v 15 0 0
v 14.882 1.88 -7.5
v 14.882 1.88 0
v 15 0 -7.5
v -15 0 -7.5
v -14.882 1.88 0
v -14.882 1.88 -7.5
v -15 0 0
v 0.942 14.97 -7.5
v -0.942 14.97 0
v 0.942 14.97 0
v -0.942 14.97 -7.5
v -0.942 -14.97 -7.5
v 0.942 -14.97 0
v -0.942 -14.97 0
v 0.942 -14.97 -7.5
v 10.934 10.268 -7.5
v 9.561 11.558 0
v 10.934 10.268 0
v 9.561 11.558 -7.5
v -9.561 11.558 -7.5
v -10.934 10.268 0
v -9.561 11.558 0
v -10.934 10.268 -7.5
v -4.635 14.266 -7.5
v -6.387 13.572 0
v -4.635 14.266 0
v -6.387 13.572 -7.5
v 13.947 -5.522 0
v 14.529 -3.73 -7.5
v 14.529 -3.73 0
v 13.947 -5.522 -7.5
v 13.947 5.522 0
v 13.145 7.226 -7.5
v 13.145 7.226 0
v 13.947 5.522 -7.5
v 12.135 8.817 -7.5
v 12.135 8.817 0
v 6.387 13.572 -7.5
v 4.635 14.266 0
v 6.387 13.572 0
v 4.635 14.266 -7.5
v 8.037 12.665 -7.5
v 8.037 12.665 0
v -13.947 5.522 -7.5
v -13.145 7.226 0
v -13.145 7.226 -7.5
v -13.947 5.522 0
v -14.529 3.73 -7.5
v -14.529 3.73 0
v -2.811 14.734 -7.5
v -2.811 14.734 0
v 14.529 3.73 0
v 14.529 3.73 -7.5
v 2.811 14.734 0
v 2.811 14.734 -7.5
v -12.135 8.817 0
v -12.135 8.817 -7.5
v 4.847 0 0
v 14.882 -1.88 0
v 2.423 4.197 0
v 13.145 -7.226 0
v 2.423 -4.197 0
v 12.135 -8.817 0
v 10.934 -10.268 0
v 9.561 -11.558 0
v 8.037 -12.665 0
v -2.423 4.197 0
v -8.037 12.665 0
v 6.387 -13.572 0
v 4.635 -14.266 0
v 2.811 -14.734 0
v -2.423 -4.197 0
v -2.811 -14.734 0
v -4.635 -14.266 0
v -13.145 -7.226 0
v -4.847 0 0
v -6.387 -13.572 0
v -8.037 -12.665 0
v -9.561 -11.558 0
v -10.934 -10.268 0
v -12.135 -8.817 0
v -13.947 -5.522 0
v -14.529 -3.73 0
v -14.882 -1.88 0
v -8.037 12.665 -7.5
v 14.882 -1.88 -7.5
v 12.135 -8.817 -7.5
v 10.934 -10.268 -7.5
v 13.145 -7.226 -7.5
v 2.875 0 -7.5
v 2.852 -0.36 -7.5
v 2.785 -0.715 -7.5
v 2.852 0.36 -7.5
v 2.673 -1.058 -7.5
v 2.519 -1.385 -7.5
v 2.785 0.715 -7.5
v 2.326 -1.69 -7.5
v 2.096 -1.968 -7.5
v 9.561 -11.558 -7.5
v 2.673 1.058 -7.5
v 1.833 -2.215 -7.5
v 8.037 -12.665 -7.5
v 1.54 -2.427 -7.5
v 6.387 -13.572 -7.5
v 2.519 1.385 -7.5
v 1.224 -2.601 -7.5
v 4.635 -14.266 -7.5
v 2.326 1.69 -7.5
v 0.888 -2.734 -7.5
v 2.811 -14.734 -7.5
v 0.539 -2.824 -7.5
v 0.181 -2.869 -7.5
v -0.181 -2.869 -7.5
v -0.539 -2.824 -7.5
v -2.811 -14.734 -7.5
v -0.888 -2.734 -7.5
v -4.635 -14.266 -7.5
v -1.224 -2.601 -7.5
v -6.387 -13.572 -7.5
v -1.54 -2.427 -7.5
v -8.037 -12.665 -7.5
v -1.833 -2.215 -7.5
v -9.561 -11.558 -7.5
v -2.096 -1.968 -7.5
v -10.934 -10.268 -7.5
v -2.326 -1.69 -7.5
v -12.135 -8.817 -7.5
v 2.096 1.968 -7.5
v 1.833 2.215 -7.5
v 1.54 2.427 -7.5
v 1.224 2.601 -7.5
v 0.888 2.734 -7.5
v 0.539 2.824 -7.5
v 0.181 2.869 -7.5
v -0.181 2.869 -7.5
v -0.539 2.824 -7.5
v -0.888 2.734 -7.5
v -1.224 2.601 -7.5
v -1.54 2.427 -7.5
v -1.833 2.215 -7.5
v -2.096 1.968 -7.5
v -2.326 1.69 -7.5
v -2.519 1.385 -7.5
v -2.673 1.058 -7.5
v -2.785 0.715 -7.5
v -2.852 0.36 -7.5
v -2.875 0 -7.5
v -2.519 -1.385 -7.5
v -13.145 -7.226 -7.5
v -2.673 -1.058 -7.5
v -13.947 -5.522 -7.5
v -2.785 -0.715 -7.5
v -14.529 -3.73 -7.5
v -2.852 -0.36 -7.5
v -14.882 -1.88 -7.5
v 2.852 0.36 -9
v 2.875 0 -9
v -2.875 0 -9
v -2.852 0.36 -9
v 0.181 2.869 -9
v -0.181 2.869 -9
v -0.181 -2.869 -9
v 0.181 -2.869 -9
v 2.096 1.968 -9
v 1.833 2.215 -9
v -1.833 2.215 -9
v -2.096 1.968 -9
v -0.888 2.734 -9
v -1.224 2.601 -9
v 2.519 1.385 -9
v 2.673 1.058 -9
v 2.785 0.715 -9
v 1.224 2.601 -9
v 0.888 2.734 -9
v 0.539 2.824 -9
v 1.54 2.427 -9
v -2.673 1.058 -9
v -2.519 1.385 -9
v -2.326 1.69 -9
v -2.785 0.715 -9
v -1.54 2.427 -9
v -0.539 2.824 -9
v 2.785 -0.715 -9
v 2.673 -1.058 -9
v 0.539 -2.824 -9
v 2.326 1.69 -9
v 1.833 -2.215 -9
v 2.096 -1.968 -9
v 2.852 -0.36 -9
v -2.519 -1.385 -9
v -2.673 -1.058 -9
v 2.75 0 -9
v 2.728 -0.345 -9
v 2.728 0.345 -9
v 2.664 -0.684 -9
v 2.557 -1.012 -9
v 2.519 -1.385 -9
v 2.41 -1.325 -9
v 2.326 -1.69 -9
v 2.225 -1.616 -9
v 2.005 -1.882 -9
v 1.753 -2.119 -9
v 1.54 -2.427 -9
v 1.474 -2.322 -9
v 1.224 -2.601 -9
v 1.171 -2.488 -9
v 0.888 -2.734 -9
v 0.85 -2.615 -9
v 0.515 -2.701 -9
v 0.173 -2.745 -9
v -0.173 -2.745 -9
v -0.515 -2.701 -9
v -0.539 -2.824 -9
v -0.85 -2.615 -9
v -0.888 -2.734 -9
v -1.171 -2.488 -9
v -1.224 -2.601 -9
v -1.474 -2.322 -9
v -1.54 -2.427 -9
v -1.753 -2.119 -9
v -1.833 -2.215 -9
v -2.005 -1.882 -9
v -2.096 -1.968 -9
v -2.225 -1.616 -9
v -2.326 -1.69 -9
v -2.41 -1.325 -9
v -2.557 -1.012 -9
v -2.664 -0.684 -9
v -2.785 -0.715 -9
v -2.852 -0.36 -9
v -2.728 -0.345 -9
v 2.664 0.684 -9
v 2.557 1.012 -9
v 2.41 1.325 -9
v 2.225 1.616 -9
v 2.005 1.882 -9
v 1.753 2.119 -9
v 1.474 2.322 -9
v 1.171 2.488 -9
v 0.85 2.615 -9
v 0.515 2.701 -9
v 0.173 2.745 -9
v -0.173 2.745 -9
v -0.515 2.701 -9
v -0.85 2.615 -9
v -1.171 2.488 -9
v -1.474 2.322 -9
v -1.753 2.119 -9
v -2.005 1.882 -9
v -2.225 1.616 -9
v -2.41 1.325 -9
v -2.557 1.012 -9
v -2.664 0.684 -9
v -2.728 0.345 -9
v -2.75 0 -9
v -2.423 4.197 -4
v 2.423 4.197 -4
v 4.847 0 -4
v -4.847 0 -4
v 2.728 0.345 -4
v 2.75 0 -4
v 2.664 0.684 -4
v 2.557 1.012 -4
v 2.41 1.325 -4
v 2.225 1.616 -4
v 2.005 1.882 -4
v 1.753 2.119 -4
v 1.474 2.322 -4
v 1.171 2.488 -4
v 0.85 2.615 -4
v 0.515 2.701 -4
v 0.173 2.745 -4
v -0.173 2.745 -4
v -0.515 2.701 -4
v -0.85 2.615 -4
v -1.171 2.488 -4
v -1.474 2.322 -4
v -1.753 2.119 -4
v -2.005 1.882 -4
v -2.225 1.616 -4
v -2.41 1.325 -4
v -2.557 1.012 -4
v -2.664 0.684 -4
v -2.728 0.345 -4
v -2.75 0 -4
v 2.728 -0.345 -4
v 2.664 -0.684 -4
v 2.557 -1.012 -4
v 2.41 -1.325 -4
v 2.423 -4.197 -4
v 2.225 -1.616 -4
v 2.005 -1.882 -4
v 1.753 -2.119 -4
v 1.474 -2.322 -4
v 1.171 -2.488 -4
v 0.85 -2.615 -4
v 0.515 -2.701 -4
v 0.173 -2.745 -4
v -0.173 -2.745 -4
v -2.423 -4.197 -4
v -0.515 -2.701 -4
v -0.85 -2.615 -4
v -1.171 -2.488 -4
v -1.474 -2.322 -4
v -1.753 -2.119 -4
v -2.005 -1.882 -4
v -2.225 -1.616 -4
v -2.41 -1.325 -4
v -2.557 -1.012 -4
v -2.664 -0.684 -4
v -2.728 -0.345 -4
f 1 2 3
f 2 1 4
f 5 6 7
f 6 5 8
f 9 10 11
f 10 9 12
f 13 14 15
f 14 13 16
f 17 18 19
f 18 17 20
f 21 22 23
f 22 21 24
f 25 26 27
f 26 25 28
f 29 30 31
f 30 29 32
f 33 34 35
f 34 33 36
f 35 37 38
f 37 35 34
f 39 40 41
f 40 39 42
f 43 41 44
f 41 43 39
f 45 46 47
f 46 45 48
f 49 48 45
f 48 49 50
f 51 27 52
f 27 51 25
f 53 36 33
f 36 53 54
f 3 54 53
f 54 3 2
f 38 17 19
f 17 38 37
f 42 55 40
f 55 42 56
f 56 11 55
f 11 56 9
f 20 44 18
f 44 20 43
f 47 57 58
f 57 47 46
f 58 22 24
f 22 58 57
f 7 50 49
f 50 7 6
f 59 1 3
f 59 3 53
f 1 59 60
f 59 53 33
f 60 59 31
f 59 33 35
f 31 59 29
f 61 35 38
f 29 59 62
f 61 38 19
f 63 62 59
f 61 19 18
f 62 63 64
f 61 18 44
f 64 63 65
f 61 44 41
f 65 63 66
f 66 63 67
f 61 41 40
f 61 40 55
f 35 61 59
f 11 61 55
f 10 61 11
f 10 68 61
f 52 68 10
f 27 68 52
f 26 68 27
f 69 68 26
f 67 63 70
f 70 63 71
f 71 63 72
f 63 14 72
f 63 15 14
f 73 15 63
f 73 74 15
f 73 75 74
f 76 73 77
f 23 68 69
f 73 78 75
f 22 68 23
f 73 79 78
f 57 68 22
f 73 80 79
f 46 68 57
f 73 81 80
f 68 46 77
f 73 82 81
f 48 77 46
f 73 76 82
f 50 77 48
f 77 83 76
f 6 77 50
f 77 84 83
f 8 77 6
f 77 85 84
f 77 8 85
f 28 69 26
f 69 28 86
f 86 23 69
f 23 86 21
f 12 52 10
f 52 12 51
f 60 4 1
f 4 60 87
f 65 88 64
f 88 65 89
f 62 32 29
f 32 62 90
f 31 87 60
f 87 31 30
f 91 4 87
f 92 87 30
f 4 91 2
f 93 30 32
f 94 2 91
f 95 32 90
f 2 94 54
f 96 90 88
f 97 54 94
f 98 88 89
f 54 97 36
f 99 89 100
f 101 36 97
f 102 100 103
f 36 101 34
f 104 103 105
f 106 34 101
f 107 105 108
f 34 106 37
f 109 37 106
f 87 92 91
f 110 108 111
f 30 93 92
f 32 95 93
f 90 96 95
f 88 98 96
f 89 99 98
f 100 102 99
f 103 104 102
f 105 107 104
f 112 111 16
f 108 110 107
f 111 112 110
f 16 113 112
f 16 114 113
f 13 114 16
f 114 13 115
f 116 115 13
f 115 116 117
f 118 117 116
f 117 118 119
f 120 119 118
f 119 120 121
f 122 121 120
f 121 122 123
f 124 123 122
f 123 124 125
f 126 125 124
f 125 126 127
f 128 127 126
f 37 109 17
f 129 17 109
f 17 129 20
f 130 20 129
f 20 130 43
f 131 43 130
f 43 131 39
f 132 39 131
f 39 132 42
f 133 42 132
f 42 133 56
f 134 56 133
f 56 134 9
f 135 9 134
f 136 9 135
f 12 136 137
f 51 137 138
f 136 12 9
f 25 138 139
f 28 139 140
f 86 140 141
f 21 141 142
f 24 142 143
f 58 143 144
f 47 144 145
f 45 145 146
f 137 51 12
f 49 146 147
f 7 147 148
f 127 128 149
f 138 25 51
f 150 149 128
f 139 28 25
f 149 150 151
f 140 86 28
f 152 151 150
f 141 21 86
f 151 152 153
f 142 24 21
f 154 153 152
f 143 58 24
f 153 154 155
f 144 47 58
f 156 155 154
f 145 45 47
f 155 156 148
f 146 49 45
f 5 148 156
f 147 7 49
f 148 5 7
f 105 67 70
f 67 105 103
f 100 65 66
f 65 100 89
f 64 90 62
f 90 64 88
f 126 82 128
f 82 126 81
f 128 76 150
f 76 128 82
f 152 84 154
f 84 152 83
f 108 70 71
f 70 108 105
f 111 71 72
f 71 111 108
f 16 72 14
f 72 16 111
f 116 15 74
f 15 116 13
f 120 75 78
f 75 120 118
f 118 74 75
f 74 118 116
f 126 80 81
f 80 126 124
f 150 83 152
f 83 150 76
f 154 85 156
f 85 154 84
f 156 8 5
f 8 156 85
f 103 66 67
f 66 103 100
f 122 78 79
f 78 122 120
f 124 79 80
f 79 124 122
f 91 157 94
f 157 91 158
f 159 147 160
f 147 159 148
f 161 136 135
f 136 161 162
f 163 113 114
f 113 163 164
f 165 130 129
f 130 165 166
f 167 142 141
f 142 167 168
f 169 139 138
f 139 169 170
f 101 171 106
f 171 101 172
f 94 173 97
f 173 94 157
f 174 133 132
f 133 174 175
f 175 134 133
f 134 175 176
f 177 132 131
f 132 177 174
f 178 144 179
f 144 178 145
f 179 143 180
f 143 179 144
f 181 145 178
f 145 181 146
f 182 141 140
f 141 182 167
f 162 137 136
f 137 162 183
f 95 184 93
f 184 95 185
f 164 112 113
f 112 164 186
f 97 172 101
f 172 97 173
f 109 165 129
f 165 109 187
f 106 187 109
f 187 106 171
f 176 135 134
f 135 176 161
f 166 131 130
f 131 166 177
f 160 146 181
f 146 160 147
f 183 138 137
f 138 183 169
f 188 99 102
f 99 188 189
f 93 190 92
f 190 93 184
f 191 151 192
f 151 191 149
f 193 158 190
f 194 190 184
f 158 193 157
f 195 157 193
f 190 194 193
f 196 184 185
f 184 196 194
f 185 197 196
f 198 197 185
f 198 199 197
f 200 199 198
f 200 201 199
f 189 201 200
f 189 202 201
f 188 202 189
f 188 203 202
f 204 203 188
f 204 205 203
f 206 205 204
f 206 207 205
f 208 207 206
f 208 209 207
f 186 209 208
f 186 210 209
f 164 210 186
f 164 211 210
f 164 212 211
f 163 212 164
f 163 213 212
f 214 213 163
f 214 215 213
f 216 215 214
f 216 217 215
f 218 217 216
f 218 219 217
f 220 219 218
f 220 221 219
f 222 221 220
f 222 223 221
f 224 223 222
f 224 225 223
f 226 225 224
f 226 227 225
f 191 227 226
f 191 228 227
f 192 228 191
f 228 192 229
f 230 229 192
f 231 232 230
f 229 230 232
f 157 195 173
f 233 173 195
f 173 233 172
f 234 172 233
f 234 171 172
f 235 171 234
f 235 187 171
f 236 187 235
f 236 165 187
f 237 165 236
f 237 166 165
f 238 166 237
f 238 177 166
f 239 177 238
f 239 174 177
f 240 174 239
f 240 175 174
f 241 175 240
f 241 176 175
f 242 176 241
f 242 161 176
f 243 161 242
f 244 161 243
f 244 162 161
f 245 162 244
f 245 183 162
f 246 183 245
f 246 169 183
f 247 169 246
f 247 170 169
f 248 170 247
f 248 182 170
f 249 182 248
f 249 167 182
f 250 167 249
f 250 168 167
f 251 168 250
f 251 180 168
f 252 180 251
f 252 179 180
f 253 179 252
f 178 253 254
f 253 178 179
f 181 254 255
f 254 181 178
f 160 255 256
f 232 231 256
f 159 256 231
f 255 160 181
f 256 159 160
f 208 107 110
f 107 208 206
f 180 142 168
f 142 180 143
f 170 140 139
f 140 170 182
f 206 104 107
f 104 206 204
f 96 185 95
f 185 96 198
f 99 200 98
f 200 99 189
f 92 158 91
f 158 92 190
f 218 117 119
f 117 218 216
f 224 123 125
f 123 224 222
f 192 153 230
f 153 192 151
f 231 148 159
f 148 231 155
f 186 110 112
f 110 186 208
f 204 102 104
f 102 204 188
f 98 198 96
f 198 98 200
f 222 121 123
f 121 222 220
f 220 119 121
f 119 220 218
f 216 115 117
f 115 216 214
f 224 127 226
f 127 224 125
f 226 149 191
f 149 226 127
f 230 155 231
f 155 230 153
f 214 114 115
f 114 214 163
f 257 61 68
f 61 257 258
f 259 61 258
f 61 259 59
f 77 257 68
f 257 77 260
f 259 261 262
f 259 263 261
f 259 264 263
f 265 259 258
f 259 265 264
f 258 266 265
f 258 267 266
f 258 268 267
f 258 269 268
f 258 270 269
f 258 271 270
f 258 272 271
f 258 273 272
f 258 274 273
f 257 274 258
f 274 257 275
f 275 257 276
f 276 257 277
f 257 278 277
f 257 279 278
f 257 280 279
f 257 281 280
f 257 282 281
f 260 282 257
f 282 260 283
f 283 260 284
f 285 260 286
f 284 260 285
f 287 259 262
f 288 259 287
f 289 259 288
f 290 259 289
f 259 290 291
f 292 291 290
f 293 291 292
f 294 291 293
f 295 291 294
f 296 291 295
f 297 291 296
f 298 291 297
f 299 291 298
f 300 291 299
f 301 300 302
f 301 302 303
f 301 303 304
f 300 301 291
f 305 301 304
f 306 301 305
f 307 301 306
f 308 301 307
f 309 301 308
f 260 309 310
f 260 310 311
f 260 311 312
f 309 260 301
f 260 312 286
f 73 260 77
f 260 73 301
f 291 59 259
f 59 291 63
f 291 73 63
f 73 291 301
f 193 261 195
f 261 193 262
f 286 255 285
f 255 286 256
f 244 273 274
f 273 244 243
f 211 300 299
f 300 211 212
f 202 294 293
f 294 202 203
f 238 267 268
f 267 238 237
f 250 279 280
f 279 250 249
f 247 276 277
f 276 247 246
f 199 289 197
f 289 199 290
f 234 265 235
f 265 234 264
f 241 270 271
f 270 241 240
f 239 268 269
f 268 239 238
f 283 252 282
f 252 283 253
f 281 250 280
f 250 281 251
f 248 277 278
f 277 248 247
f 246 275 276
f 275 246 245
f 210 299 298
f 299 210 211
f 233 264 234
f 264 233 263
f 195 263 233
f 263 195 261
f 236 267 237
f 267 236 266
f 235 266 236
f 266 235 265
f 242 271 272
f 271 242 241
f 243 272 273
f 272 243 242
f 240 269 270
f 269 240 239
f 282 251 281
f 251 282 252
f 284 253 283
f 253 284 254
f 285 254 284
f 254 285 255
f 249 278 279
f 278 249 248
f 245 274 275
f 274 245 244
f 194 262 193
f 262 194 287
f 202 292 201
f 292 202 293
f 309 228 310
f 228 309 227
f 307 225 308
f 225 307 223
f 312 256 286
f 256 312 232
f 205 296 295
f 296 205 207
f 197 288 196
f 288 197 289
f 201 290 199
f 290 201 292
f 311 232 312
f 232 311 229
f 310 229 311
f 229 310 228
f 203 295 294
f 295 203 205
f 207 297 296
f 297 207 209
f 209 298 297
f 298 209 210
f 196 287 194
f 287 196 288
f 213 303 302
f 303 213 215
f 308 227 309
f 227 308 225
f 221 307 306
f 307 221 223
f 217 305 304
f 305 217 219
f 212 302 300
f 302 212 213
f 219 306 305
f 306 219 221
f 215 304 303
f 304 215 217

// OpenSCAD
$fn = 50;


difference() {
	union() {
		translate(v = [0, 0, -7.5000000000]) {
			cylinder(h = 7.5000000000, r = 15.0000000000);
		}
		translate(v = [0, 0, -9.0000000000]) {
			cylinder(h = 9, r = 2.8750000000);
		}
	}
	union() {
		translate(v = [0, 0, 0]) {
			rotate(a = [0, 0, 0]) {
				difference() {
					union() {
						translate(v = [0, 0, -4]) {
							linear_extrude(height = 4) {
								polygon(points = [[4.8468000000, 0.0000000000], [2.4234000000, 4.1974519271], [-2.4234000000, 4.1974519271], [-4.8468000000, 0.0000000000], [-2.4234000000, -4.1974519271], [2.4234000000, -4.1974519271]]);
							}
						}
					}
					union();
				}
			}
		}
		#translate(v = [0, 0, -100.0000000000]) {
			cylinder(h = 200, r = 2.7500000000);
		}
	}
}
